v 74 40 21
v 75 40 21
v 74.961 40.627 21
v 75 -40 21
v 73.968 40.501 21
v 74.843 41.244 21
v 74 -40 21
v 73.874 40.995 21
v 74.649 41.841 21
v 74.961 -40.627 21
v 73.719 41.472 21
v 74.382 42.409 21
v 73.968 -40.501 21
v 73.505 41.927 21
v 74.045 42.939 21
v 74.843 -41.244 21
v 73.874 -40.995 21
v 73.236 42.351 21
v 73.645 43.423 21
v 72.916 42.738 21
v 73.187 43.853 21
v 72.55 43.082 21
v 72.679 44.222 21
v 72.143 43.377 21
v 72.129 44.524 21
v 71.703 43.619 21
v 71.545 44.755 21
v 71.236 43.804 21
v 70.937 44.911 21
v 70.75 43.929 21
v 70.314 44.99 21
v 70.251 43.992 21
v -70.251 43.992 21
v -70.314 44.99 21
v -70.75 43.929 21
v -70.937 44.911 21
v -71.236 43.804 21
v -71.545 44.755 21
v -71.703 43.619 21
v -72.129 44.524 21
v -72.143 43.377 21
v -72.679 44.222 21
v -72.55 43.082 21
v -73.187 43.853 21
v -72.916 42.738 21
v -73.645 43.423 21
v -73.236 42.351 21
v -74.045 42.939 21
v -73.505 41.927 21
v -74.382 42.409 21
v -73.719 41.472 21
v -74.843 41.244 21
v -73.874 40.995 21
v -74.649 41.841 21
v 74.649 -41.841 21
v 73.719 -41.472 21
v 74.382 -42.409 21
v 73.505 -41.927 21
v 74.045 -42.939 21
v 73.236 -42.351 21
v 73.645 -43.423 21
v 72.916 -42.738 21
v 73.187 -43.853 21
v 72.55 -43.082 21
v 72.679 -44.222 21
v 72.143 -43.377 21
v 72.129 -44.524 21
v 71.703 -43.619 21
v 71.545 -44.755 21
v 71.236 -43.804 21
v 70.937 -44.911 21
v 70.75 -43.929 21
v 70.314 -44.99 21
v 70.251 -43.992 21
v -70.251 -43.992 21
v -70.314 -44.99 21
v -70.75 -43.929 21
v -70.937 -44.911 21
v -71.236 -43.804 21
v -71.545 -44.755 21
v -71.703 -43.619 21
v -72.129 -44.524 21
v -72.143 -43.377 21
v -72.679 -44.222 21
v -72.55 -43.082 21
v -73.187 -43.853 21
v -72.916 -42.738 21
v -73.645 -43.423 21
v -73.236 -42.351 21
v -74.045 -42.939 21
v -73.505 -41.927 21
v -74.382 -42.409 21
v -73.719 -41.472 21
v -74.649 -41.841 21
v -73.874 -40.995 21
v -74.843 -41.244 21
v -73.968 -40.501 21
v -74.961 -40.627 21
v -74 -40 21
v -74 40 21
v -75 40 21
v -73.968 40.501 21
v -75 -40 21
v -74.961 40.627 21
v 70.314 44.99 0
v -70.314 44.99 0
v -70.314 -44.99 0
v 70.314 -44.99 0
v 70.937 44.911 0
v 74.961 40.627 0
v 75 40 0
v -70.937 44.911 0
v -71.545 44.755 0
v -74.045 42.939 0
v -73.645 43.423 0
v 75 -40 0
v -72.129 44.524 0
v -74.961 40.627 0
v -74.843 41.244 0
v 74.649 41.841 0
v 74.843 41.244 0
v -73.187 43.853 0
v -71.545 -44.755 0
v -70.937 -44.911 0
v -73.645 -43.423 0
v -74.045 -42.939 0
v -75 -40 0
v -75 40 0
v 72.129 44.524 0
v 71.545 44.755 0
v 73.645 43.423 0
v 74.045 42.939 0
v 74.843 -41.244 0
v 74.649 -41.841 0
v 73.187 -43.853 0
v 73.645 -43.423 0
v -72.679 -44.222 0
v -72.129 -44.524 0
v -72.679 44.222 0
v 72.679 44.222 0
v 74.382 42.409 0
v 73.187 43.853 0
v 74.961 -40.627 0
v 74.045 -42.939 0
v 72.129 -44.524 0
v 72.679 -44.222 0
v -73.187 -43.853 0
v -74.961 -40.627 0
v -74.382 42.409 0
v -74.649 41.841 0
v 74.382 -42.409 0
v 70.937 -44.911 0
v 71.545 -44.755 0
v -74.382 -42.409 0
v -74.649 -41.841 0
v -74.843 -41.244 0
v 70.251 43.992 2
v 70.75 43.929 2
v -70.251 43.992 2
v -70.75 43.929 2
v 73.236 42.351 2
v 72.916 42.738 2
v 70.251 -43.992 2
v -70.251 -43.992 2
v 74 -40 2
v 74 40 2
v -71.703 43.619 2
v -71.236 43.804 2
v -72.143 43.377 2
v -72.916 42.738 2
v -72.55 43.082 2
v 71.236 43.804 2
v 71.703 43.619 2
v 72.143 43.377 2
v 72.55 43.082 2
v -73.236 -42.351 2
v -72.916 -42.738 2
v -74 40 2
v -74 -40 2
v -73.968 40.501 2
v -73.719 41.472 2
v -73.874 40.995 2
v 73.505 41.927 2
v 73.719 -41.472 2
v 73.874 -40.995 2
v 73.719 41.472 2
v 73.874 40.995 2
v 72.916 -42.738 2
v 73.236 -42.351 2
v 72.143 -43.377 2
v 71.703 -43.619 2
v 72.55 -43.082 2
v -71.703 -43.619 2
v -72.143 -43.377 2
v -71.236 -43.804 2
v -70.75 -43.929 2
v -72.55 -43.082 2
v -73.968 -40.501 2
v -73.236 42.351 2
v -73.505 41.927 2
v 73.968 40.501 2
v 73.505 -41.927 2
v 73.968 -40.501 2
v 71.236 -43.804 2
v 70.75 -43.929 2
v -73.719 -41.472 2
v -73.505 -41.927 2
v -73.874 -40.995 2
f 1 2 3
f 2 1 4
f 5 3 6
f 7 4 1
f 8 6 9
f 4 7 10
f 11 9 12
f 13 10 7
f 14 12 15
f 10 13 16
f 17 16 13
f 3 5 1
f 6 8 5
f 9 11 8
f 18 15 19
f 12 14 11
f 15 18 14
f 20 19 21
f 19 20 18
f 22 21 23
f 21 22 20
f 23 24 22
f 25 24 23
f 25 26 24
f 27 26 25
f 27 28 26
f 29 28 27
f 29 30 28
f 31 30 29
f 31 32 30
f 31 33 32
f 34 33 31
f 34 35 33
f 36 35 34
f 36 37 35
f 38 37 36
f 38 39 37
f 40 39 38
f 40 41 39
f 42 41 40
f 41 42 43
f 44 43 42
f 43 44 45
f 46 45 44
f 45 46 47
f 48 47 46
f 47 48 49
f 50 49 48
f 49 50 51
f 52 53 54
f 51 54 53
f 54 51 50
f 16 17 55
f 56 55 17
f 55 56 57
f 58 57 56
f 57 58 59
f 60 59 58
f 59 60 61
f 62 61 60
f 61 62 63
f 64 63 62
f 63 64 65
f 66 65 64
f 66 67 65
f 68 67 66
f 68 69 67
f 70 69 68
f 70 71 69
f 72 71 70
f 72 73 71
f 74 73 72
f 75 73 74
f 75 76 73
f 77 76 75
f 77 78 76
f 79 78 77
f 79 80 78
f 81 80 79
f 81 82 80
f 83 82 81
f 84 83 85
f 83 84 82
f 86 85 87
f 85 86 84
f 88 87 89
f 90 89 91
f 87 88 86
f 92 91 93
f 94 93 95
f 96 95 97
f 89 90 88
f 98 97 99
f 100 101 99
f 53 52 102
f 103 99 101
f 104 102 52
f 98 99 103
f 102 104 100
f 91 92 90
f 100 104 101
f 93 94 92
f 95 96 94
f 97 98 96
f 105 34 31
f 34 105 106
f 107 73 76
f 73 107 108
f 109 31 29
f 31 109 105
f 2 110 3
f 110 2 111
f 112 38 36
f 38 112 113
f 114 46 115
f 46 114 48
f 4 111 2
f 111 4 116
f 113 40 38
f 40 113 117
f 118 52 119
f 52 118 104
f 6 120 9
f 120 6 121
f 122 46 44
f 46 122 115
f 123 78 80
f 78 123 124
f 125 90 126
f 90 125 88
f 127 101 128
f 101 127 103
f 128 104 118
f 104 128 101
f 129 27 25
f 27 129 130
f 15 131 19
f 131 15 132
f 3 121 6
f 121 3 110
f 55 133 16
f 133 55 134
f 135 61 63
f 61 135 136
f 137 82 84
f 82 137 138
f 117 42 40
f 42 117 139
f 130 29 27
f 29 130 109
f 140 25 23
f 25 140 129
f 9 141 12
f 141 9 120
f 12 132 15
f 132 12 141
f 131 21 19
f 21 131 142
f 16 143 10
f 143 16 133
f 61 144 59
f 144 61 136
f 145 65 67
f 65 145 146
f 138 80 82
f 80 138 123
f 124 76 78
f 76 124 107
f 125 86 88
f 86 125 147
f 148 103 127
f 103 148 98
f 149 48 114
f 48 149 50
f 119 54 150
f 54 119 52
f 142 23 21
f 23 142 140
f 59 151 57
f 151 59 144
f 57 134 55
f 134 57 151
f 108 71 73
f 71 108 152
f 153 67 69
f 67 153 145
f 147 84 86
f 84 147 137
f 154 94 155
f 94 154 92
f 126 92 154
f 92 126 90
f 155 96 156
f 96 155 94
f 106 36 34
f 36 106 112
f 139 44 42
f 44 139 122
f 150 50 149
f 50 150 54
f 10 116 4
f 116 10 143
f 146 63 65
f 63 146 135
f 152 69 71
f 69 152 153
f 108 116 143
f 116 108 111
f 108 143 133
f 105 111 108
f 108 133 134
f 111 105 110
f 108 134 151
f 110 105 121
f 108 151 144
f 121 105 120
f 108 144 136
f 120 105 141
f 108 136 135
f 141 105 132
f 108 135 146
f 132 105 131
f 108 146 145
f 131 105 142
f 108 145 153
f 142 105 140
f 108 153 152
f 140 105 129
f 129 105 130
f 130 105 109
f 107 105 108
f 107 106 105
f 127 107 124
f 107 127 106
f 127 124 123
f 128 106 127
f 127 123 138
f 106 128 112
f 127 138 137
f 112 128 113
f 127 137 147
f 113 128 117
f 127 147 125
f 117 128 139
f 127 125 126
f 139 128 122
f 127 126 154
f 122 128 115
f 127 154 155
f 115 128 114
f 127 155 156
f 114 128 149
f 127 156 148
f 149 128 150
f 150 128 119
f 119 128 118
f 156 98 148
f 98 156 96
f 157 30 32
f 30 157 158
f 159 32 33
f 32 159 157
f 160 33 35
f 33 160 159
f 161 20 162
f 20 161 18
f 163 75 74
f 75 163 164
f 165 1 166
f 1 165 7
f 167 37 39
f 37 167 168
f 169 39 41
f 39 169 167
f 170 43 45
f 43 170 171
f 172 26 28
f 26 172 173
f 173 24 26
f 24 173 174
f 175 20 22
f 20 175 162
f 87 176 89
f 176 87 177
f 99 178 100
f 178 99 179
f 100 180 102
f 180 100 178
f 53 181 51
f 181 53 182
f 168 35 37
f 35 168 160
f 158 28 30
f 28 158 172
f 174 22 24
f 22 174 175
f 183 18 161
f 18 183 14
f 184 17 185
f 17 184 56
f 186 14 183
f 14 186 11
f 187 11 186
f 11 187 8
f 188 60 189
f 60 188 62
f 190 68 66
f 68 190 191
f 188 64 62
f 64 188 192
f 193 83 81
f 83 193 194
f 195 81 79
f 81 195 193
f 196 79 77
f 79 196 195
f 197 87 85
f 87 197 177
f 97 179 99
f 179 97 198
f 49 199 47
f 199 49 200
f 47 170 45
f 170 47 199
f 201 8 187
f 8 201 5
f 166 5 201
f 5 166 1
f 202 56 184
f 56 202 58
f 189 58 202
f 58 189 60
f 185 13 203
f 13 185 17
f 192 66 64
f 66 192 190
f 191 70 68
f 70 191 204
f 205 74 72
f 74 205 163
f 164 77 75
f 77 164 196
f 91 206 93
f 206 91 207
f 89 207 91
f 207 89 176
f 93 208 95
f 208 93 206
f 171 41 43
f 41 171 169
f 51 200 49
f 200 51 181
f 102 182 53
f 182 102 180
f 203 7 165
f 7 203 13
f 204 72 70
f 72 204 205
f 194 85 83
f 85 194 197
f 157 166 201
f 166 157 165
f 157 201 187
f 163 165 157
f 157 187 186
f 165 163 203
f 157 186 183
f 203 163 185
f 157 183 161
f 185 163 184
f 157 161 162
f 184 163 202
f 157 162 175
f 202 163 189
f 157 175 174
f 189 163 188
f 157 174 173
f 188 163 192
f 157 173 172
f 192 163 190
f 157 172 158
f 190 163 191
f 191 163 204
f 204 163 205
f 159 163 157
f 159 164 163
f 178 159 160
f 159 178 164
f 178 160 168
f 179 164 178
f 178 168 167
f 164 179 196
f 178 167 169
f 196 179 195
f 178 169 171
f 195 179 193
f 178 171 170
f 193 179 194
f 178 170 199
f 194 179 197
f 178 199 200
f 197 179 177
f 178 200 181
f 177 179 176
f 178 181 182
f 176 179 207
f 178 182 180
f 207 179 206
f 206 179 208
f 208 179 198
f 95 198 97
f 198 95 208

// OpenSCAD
$fn = 50;


difference() {
	union() {
		hull() {
			translate(v = [-70.0000000000, 40.0000000000, 0]) {
				cylinder(h = 21, r = 5);
			}
			translate(v = [70.0000000000, 40.0000000000, 0]) {
				cylinder(h = 21, r = 5);
			}
			translate(v = [-70.0000000000, -40.0000000000, 0]) {
				cylinder(h = 21, r = 5);
			}
			translate(v = [70.0000000000, -40.0000000000, 0]) {
				cylinder(h = 21, r = 5);
			}
		}
	}
	union() {
		translate(v = [0, 0, 2]) {
			hull() {
				translate(v = [-70.0000000000, 40.0000000000, 0]) {
					cylinder(h = 19, r = 4);
				}
				translate(v = [70.0000000000, 40.0000000000, 0]) {
					cylinder(h = 19, r = 4);
				}
				translate(v = [-70.0000000000, -40.0000000000, 0]) {
					cylinder(h = 19, r = 4);
				}
				translate(v = [70.0000000000, -40.0000000000, 0]) {
					cylinder(h = 19, r = 4);
				}
			}
		}
	}
}
